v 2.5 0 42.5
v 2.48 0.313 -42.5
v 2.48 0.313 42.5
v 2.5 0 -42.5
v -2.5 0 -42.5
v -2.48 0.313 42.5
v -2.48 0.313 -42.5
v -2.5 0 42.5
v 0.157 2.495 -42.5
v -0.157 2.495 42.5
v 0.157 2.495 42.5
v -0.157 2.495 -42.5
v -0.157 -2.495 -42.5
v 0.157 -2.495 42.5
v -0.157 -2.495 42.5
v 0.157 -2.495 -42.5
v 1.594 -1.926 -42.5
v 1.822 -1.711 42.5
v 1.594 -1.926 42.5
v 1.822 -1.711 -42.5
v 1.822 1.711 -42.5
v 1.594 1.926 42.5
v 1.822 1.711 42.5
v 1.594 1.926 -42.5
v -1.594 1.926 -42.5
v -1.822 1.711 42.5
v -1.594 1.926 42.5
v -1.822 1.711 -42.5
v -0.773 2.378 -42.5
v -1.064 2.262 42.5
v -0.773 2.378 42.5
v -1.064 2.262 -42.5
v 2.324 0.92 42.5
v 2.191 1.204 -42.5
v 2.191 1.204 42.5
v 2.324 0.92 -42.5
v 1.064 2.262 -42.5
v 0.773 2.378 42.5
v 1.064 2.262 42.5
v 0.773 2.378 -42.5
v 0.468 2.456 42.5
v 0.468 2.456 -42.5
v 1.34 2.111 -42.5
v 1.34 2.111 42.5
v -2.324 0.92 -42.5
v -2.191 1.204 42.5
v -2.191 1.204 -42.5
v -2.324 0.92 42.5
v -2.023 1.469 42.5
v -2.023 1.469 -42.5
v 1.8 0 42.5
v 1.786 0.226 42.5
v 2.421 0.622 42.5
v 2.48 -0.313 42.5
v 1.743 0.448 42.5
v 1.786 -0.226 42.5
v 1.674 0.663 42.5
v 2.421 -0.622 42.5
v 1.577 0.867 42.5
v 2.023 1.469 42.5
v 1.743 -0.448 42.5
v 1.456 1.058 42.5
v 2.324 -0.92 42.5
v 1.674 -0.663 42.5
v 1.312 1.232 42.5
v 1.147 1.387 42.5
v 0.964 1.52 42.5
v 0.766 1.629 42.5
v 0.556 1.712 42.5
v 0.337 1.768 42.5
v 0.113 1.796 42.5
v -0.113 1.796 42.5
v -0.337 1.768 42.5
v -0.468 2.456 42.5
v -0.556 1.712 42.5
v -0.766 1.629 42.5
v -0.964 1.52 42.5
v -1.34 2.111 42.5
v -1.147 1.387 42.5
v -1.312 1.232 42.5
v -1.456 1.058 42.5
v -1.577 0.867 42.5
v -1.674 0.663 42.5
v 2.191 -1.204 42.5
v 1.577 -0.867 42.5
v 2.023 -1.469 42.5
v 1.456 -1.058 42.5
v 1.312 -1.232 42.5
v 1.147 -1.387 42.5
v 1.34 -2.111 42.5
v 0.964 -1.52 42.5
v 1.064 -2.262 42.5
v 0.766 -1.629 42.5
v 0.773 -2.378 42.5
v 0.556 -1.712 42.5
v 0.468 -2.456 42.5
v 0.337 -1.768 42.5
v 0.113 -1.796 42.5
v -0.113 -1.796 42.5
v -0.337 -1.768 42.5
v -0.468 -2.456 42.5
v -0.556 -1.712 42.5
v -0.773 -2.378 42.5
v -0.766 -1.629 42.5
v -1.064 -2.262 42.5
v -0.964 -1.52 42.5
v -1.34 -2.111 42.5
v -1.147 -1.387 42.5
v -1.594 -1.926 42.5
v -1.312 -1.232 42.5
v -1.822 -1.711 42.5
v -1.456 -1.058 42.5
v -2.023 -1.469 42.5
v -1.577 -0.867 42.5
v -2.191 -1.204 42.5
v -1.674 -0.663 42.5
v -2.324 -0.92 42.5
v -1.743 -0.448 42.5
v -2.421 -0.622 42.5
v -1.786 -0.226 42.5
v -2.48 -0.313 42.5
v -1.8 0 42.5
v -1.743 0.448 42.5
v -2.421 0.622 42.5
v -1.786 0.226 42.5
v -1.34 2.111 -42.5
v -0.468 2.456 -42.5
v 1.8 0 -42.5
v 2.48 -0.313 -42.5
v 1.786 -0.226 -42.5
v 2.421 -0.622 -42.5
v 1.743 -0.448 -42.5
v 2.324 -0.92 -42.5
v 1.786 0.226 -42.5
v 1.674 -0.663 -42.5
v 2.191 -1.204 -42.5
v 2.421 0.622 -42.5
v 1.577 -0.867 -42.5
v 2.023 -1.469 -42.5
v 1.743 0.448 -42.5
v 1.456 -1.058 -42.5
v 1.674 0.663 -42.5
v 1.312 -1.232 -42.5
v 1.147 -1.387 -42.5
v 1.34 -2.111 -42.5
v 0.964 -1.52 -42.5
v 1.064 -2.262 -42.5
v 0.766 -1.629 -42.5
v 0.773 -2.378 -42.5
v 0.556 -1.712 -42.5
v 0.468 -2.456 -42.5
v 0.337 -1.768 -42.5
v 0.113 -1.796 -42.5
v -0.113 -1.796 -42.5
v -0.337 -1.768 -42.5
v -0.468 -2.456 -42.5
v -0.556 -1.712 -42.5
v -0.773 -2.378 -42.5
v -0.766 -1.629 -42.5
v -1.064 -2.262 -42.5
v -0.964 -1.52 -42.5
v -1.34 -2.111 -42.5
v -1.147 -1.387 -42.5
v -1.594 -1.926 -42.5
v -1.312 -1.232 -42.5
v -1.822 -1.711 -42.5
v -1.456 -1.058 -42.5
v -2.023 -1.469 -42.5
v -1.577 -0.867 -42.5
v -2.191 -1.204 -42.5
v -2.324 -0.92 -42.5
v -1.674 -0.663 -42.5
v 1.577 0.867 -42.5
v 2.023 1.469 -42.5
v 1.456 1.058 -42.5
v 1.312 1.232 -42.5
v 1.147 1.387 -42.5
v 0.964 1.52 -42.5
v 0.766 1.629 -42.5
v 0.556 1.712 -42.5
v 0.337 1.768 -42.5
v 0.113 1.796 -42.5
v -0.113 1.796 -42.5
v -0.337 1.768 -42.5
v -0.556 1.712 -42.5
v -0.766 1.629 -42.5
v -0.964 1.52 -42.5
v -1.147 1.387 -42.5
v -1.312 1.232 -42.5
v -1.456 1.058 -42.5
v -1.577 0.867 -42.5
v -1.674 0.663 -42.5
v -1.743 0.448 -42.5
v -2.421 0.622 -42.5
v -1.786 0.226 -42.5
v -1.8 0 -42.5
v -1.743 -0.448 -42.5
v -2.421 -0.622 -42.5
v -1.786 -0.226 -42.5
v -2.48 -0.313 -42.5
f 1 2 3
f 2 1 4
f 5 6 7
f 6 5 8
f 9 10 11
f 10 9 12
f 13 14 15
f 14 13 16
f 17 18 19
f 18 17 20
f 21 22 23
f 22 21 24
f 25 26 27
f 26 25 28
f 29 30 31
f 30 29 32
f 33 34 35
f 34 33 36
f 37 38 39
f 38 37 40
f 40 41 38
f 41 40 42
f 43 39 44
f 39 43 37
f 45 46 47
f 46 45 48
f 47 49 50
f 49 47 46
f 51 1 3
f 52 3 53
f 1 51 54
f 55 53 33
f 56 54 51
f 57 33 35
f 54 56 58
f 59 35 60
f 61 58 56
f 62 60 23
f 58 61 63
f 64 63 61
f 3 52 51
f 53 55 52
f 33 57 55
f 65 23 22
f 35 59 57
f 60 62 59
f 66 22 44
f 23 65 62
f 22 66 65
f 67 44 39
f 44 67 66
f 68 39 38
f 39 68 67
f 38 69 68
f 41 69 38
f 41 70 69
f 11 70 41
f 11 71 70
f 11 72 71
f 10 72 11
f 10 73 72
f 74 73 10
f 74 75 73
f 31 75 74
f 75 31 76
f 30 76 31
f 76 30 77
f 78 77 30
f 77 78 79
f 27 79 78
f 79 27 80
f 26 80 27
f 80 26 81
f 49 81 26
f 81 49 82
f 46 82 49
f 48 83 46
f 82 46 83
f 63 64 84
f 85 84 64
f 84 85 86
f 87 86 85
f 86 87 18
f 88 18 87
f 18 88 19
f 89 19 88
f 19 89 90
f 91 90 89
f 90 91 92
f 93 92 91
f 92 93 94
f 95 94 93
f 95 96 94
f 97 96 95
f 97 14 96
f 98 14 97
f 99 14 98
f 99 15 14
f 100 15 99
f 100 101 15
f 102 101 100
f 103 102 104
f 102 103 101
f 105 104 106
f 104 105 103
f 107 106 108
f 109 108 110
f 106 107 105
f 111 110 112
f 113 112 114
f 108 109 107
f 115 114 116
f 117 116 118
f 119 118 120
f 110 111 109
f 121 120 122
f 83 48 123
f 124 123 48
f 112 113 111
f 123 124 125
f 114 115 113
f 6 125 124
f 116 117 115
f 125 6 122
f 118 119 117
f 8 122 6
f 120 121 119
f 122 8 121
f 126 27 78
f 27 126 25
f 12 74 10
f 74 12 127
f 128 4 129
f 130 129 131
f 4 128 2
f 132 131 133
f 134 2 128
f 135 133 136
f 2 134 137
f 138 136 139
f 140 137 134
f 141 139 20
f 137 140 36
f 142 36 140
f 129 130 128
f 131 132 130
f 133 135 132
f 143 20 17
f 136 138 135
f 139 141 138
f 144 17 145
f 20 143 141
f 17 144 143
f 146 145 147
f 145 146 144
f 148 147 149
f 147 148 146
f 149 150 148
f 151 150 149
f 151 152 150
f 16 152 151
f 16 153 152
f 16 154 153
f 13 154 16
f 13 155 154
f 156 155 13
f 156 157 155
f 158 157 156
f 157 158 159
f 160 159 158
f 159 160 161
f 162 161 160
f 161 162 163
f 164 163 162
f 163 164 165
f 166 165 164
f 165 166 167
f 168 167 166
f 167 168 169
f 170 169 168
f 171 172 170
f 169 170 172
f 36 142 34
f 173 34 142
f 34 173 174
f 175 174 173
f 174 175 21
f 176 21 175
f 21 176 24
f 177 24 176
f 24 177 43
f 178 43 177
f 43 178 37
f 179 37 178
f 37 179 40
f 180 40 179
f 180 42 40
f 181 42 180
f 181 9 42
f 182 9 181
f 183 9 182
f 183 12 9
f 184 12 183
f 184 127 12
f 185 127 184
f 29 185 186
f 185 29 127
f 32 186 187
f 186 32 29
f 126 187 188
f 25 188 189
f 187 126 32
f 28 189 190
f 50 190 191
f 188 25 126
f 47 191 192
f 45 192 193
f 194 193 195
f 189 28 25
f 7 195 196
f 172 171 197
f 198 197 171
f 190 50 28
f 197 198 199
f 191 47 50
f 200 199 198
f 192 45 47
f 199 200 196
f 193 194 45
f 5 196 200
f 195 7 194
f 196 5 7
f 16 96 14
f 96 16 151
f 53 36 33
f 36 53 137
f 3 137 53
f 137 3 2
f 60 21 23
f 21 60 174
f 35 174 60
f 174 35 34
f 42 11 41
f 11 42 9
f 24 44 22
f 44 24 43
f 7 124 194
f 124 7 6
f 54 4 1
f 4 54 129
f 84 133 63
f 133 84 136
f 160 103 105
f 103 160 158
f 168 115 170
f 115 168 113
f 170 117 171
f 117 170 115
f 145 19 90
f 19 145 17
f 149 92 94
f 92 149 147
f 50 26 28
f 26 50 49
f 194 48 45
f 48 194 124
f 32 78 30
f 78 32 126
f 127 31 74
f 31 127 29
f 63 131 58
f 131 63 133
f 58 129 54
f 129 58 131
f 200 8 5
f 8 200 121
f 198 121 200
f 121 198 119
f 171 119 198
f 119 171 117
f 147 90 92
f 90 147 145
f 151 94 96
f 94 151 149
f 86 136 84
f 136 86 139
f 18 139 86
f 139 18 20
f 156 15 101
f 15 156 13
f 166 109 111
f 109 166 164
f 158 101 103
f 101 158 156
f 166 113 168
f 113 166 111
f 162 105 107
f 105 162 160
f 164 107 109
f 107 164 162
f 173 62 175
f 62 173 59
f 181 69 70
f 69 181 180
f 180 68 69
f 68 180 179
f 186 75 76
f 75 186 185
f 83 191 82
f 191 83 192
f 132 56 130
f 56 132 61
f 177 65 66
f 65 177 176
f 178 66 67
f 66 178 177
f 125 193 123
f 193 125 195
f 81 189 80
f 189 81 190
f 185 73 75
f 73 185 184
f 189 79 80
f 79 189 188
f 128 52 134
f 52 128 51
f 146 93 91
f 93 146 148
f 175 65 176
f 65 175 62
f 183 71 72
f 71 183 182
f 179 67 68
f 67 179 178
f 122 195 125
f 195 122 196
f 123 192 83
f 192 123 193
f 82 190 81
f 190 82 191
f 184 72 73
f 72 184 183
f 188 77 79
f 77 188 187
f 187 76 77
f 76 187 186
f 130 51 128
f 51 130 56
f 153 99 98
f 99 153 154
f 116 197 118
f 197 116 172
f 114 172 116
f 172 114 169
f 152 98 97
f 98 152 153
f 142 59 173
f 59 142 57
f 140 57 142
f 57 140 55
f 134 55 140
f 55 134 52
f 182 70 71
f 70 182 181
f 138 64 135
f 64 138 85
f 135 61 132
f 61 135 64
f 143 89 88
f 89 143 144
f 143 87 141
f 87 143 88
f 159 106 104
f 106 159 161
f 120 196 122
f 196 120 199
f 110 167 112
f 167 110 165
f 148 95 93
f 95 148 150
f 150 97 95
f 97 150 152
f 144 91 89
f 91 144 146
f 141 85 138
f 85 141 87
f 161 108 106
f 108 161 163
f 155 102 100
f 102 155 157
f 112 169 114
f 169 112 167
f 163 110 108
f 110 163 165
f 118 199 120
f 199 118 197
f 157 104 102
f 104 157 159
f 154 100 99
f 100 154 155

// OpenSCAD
$fn = 50;


difference() {
	union() {
		translate(v = [0, 0, -42.5000000000]) {
			cylinder(h = 85, r = 2.5000000000);
		}
	}
	union() {
		translate(v = [0, 0, -100.0000000000]) {
			cylinder(h = 200, r = 1.8000000000);
		}
	}
}
